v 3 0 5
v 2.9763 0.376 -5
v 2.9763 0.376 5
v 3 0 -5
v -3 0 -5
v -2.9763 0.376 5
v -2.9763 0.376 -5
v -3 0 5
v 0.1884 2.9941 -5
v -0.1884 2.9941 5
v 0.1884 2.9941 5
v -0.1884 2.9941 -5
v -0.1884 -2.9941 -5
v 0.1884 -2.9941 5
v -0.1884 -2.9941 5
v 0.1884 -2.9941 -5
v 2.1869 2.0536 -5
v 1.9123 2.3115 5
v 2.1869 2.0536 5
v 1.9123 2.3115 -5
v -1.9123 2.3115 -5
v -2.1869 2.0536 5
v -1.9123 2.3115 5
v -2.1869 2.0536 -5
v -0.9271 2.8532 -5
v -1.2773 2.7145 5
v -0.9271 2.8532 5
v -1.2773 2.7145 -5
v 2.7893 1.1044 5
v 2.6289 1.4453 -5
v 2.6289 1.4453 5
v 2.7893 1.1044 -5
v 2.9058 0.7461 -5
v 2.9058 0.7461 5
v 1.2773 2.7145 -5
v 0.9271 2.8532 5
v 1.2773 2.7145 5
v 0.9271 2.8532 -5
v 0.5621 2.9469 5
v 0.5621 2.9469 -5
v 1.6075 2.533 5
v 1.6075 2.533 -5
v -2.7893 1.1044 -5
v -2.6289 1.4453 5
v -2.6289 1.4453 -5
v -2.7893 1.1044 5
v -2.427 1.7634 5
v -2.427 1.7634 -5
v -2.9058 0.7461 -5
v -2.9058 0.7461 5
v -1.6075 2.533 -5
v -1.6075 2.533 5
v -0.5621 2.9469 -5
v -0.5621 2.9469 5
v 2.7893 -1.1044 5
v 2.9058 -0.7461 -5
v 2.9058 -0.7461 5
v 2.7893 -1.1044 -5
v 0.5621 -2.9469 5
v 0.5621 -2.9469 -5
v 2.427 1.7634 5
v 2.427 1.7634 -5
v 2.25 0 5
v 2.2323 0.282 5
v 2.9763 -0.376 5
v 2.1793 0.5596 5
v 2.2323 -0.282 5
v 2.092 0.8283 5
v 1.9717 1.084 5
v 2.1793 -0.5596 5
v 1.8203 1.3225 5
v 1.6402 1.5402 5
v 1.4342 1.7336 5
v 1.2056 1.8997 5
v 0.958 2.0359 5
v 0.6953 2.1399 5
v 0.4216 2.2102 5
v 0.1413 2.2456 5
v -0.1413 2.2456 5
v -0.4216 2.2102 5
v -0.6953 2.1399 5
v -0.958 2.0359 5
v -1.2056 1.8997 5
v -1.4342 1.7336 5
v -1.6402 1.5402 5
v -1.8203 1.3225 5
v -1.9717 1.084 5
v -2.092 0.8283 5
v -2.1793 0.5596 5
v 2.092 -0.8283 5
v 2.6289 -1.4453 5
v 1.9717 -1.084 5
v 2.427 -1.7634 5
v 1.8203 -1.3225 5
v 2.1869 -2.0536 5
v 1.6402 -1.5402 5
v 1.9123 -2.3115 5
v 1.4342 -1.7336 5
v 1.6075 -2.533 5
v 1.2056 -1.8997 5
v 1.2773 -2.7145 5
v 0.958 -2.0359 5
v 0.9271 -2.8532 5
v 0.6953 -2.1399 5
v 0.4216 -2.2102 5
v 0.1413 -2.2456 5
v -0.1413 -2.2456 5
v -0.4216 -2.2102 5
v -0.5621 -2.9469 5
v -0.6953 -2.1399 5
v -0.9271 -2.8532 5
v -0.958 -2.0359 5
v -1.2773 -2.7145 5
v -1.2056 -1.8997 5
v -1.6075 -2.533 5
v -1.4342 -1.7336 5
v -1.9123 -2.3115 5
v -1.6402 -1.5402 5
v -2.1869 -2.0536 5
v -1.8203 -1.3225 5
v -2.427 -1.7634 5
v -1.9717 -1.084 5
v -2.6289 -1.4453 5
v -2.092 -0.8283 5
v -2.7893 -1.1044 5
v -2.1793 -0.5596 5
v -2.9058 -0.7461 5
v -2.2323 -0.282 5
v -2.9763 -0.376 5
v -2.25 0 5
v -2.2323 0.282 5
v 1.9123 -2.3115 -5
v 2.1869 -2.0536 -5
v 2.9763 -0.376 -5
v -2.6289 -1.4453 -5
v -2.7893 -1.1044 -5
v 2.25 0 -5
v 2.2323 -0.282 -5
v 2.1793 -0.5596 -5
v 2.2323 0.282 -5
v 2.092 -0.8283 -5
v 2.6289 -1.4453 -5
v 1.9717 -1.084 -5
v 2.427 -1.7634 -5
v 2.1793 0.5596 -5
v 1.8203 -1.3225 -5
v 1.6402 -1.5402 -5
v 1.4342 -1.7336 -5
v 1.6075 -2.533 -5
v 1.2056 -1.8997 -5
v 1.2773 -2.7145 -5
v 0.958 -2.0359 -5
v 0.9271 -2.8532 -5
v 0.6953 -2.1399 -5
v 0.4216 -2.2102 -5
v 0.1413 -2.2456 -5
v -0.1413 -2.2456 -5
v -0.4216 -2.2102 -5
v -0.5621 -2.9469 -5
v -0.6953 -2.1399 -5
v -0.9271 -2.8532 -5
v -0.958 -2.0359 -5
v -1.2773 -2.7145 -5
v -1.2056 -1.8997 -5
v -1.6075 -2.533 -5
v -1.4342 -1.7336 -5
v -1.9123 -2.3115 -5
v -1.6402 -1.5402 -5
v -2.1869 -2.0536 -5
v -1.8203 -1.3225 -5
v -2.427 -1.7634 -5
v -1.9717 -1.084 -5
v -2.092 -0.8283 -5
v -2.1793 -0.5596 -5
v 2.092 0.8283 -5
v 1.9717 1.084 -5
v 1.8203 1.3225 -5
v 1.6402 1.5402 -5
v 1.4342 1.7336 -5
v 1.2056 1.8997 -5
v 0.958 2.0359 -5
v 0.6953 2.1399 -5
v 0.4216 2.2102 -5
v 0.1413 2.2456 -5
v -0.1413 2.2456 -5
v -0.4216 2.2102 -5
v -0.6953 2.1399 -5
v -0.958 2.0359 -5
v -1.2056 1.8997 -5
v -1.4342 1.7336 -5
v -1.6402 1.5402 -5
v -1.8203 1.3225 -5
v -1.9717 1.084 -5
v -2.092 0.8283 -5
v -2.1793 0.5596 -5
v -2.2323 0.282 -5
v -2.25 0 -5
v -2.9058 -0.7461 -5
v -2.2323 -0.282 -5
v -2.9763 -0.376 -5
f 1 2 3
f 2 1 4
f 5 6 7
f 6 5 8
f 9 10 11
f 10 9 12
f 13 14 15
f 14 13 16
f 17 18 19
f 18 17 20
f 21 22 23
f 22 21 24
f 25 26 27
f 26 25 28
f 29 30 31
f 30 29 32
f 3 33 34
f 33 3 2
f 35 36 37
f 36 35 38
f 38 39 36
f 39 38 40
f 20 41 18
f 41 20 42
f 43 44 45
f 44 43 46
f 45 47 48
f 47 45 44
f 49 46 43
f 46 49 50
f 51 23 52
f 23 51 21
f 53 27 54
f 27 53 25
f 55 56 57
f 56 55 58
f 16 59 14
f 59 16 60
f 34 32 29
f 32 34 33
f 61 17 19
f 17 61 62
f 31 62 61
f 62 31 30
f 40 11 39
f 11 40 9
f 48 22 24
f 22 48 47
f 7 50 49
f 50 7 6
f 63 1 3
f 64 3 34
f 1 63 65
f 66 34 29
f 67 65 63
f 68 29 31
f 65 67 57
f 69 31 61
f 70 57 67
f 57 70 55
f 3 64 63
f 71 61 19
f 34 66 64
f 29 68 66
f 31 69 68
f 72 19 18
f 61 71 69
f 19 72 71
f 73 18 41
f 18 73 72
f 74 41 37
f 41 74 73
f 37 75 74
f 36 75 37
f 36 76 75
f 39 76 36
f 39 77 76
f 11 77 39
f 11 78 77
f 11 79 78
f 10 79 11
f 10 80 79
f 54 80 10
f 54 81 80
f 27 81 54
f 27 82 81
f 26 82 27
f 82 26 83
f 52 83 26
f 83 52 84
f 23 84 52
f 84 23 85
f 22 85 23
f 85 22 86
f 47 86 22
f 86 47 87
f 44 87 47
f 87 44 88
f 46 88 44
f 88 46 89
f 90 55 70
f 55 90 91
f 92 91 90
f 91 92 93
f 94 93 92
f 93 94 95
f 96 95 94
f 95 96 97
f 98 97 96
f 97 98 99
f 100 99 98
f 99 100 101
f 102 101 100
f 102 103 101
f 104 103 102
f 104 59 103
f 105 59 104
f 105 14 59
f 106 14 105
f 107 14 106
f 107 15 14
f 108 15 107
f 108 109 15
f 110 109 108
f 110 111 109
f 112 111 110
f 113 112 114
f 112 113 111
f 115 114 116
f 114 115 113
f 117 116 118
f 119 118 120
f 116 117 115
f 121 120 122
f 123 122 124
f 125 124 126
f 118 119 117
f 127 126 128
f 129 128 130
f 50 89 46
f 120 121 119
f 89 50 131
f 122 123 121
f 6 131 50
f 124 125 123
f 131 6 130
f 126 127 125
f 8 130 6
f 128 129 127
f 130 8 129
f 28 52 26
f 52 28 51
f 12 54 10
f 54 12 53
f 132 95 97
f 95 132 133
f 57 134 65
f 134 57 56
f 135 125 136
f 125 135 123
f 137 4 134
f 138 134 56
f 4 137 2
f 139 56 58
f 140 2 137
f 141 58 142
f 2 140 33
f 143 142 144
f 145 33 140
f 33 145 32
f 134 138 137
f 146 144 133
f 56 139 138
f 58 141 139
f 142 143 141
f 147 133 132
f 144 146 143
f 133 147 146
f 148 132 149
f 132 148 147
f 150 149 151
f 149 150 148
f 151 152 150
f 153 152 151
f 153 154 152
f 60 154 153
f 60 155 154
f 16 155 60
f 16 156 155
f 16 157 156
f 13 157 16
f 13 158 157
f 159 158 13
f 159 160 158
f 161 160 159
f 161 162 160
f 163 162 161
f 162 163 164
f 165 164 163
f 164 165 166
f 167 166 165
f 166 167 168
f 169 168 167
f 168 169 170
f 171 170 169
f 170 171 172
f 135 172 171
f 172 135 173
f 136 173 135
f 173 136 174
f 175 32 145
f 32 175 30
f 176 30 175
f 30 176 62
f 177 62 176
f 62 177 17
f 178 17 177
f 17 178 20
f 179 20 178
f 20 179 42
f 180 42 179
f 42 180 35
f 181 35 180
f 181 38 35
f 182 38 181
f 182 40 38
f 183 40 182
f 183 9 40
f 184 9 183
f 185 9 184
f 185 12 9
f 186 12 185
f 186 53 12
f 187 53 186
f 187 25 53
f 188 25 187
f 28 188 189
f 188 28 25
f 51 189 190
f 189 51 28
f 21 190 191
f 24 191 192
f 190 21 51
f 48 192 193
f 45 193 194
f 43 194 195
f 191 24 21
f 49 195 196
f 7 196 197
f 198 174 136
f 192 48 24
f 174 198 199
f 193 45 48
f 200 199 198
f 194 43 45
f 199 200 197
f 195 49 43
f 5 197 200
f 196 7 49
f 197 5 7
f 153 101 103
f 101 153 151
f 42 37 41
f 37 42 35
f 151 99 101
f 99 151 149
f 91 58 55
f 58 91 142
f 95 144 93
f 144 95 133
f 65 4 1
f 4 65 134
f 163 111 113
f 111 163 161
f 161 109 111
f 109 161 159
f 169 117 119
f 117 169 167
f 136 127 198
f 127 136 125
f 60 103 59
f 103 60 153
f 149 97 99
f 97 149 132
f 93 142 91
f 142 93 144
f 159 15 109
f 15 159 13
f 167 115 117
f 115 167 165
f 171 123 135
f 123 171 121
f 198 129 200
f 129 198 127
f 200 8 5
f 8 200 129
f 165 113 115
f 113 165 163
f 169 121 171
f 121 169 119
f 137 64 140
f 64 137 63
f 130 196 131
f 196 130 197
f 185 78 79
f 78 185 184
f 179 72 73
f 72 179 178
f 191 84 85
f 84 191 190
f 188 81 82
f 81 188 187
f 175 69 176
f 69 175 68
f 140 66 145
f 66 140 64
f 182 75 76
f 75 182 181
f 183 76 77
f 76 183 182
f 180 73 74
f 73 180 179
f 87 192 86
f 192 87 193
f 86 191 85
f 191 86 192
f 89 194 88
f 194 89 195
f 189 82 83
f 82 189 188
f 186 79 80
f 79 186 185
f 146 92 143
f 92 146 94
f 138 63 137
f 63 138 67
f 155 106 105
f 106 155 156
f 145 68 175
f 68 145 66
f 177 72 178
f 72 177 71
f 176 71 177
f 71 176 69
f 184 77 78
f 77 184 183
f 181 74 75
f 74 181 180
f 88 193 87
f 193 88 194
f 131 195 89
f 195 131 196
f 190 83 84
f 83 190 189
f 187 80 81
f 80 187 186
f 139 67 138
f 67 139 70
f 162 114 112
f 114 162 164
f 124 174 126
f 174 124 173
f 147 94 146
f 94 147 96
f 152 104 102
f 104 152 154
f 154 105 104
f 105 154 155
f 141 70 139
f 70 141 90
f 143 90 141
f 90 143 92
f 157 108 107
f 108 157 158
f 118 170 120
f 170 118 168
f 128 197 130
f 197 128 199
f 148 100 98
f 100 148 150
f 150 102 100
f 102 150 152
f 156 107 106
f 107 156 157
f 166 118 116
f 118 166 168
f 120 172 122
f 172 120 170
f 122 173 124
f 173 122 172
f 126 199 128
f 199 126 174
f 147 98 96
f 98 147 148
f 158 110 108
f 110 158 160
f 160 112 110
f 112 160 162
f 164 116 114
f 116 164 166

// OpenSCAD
$fn = 50;


difference() {
	union() {
		translate(v = [0, 0, -5.0000000000]) {
			cylinder(h = 10, r = 3.0000000000);
		}
	}
	union() {
		translate(v = [0, 0, -100.0000000000]) {
			cylinder(h = 200, r = 2.2500000000);
		}
	}
}
